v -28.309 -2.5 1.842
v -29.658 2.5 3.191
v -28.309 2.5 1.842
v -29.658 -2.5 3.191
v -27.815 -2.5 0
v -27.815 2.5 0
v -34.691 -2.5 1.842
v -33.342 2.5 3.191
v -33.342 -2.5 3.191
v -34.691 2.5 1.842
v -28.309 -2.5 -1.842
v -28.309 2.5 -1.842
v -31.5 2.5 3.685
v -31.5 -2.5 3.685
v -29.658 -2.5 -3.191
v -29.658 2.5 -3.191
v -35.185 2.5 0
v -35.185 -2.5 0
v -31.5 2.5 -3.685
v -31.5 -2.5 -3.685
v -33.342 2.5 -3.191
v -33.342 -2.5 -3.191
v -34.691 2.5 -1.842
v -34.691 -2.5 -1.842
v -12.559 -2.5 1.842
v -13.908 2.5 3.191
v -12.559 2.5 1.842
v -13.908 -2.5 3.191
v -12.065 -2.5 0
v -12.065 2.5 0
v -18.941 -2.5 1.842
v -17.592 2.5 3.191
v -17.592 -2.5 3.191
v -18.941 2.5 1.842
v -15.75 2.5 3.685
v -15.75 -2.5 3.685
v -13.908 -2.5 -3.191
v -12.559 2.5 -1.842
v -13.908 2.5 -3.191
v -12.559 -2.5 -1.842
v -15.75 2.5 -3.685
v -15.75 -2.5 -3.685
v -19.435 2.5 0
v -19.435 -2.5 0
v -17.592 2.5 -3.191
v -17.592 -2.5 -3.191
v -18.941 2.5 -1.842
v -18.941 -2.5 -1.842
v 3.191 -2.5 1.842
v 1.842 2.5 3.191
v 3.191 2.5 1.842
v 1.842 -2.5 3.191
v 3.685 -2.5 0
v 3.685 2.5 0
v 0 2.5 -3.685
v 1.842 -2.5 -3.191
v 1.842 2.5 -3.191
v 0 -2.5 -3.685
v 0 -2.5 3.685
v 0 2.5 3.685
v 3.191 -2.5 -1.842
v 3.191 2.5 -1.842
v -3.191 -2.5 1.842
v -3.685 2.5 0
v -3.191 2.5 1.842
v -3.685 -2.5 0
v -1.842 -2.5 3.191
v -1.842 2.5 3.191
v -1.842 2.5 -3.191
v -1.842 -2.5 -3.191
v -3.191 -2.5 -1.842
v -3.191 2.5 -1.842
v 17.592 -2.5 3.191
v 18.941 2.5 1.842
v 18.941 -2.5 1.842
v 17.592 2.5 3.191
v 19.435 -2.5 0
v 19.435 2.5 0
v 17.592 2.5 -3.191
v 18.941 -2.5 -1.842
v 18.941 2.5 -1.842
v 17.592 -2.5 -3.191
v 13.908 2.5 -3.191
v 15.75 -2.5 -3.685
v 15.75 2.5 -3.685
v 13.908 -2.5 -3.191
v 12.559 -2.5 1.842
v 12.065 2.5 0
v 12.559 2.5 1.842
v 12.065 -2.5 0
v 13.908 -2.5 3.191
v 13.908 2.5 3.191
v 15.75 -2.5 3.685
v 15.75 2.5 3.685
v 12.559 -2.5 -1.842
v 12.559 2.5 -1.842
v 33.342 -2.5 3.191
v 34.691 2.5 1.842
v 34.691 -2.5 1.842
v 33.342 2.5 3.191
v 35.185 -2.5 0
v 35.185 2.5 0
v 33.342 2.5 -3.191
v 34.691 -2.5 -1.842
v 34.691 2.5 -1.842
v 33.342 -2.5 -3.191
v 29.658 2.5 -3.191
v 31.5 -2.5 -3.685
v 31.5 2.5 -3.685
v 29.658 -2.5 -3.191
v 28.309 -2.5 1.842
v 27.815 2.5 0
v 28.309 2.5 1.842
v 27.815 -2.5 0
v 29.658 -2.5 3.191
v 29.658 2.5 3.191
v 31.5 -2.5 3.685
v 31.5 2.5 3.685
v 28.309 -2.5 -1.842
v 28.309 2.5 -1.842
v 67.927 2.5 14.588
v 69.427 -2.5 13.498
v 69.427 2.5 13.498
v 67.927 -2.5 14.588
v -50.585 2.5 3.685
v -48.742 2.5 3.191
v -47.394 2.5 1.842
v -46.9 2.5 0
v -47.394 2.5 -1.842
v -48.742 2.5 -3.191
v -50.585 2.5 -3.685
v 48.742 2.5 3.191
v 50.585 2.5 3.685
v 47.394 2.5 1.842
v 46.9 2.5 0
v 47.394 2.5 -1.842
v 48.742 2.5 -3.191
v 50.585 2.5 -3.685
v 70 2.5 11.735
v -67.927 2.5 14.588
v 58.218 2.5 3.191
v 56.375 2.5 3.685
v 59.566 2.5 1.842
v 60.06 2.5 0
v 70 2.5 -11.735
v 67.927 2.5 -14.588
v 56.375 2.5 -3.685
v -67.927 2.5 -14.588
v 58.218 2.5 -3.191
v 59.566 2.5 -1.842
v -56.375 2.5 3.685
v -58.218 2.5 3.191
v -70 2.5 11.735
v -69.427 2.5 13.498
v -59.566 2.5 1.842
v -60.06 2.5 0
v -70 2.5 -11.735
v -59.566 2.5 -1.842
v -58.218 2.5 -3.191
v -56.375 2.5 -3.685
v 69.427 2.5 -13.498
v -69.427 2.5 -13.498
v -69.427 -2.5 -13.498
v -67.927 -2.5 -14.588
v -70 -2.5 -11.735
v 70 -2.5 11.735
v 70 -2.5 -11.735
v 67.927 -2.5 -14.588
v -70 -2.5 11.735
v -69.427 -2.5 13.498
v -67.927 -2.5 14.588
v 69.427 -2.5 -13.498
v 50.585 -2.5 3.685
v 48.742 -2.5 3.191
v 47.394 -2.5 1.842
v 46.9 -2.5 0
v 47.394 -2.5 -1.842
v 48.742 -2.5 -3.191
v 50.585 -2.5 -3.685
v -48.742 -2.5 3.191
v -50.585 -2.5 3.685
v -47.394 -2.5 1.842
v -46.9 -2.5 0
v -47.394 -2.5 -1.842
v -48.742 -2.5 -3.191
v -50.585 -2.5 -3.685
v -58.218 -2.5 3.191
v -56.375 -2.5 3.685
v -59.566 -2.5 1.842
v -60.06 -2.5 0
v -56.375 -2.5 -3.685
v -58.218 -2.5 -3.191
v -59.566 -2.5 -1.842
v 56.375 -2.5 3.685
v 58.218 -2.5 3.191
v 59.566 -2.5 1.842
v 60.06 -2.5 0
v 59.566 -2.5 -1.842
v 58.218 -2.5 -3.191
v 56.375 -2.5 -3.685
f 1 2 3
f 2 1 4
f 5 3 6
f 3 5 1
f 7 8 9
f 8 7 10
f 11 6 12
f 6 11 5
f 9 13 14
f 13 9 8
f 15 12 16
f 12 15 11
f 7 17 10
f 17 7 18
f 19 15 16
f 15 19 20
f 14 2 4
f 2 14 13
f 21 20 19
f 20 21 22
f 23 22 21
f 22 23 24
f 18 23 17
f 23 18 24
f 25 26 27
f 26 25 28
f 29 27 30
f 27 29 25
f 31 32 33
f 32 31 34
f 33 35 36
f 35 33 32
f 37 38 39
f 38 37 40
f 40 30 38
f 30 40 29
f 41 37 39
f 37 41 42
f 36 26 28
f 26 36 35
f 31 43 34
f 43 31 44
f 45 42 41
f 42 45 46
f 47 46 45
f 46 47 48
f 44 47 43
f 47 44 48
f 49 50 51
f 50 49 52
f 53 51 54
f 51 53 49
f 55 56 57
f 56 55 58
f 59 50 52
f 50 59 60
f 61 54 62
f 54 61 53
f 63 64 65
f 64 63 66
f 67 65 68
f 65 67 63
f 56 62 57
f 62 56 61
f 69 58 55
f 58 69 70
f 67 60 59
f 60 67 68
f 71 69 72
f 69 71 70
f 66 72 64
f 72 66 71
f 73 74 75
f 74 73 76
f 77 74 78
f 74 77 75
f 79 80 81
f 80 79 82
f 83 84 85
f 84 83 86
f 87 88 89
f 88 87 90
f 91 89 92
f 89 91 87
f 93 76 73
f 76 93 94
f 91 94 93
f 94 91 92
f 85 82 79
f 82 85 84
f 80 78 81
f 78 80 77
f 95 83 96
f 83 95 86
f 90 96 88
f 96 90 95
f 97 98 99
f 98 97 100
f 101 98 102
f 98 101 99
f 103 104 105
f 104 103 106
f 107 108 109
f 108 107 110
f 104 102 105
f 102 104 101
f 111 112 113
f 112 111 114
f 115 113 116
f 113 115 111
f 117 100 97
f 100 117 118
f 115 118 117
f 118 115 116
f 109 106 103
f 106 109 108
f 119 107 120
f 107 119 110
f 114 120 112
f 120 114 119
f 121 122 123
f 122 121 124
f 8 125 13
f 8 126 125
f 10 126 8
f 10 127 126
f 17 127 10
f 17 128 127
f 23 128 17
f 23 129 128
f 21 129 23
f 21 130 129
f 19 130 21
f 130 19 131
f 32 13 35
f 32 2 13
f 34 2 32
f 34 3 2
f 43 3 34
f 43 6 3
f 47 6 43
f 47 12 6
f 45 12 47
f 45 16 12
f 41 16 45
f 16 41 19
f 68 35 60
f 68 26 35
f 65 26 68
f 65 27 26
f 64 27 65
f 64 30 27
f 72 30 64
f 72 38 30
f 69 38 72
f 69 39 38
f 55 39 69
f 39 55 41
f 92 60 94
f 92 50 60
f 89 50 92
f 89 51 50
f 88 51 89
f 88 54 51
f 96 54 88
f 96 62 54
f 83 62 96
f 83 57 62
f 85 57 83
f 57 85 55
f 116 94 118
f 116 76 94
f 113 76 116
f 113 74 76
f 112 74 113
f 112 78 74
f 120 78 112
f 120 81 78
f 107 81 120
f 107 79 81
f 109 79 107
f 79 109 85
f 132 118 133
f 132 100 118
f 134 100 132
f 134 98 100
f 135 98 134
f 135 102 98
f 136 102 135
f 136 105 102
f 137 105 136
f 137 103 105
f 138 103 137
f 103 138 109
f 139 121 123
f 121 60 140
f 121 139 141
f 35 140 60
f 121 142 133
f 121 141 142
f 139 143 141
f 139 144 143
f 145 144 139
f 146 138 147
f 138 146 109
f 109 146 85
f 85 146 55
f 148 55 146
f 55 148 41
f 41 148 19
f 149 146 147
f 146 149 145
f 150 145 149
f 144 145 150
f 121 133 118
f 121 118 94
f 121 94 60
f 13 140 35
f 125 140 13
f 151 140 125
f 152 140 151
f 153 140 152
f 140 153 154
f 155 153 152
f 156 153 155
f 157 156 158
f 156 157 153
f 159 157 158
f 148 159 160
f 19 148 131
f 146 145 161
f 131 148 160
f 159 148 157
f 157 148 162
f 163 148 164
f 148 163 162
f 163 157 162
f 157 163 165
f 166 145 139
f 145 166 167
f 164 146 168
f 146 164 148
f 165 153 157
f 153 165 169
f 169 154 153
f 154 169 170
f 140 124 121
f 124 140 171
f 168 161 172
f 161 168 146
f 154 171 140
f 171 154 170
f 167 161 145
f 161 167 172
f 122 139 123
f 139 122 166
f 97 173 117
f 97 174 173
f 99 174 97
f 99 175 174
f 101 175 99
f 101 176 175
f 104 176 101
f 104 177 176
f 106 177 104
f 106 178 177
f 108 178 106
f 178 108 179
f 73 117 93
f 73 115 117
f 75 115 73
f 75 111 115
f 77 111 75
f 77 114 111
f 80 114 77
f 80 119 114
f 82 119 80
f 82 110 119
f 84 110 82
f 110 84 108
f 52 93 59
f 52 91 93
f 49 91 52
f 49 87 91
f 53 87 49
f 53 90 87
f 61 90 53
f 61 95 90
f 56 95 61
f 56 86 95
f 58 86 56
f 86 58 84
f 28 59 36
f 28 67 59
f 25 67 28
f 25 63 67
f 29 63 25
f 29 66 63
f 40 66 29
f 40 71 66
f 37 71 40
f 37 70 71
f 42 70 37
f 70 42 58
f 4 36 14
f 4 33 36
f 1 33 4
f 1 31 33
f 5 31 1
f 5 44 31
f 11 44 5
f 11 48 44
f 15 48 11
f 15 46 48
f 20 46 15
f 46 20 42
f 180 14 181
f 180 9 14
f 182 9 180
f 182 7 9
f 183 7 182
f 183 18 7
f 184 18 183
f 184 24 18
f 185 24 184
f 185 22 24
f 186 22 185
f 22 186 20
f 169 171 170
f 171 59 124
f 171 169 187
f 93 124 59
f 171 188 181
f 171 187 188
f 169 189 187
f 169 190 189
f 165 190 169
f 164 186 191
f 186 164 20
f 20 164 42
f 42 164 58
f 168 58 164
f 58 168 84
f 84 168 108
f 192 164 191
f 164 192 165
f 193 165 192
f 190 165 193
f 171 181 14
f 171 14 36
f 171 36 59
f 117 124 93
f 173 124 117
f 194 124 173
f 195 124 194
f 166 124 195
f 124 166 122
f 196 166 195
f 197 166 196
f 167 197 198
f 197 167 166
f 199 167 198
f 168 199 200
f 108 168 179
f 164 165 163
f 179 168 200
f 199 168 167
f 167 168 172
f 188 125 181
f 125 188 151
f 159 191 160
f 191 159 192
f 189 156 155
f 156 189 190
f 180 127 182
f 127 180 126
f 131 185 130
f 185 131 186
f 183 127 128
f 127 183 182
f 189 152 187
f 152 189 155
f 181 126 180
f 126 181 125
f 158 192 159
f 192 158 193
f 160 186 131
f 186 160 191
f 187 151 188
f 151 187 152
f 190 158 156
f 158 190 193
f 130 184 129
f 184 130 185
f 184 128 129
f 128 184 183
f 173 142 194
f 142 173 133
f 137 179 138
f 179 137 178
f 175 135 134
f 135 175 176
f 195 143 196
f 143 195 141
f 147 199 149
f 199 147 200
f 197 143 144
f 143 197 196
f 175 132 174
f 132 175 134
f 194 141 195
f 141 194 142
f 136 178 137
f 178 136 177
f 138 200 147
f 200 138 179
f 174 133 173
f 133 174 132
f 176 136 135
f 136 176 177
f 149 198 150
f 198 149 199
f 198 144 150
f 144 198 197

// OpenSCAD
/* doodle-meta {"version":1,"parameters":{"width":{"label":"Overall width","description":"Changes the body width","unit":"mm","feature":"body_width"},"height":{"label":"Overall height","description":"Changes the body height","unit":"mm","feature":"body_height"},"thickness":{"label":"Plate thickness","description":"Changes the plate depth","unit":"mm","feature":"body_thickness"},"corner_radius":{"label":"Corner radius","description":"Changes the outer corner rounding","unit":"mm","feature":"body_corner"}},"features":{"body_width":{"kind":"dimension","axis":"x","label":"Overall width"},"body_height":{"kind":"dimension","axis":"z","label":"Overall height"},"body_thickness":{"kind":"dimension","axis":"y","label":"Plate thickness"},"body_corner":{"kind":"region","label":"Outer corner","min":[0,0,0],"max":[{"parameter":"corner_radius","scale":1,"offset":0},{"parameter":"thickness","scale":1,"offset":0},{"parameter":"corner_radius","scale":1,"offset":0}]}}} */

// --- Parameters ---
width = 140;
height = 29.47;
thickness = 5;
corner_radius = 3;

// Derived dimensions
slot_width = 13.16;
slot_height = 7.37;
slot_radius = 3.68;
slot_x_offset = 16.52;

vent_diameter = 7.37;
vent_count = 5;
vent_pitch = 15.75;

eps = 0.01;

// --- Modules ---

module rounded_rect_2d(w, h, r) {
    // Creates a rounded rectangle centered at (0,0) in XY plane
    // w is X, h is Y
    hull() {
        translate([-w/2 + r, -h/2 + r]) circle(r=r);
        translate([w/2 - r, -h/2 + r]) circle(r=r);
        translate([-w/2 + r, h/2 - r]) circle(r=r);
        translate([w/2 - r, h/2 - r]) circle(r=r);
    }
}

module plate_body() {
    // Extrude the rounded rectangle profile along Y
    // The profile is in XZ, so we create it in XY and rotate
    rotate([90, 0, 0]) {
        linear_extrude(height=thickness, center=true) {
            rounded_rect_2d(width, height, corner_radius);
        }
    }
}

module slot_cutter() {
    // Slot cutter centered at origin, axis along Y
    // Width (X) = slot_width, Height (Z) = slot_height
    // We create a stadium shape in XZ and extrude along Y
    // Stadium: two circles connected by a rectangle
    // Total width = slot_width, Total height = slot_height
    // Radius = slot_height / 2
    // Straight length = slot_width - slot_height
    
    r = slot_height / 2;
    straight_len = slot_width - slot_height;
    
    // Create in XY plane (X is width, Y is height of slot) then rotate to XZ
    // Actually, let's build directly in XZ using hull of cylinders rotated to Y axis?
    // Easier: Build in XY, extrude along Z, then rotate to align with Y.
    
    // Let's build the slot profile in XY (X=slot_width, Y=slot_height)
    // Then extrude along Z (thickness), then rotate to align extrusion with Y.
    
    // Wait, the slot is a through cut along Y.
    // So the profile is in XZ.
    // Let's make a module that creates the slot shape in XZ and extrudes along Y.
    
    // Shape in XZ:
    // Centered at 0,0.
    // X range: -slot_width/2 to slot_width/2
    // Z range: -slot_height/2 to slot_height/2
    // Rounded corners in XZ plane.
    
    // We can use hull of 4 cylinders with axis along Y.
    // Cylinders at (±(slot_width/2 - r), ±(slot_height/2 - r))
    
    r = slot_height / 2;
    x_off = slot_width / 2 - r;
    z_off = slot_height / 2 - r;
    
    hull() {
        translate([-x_off, 0, -z_off]) rotate([90,0,0]) cylinder(h=thickness+2*eps, r=r, center=true);
        translate([ x_off, 0, -z_off]) rotate([90,0,0]) cylinder(h=thickness+2*eps, r=r, center=true);
        translate([-x_off, 0,  z_off]) rotate([90,0,0]) cylinder(h=thickness+2*eps, r=r, center=true);
        translate([ x_off, 0,  z_off]) rotate([90,0,0]) cylinder(h=thickness+2*eps, r=r, center=true);
    }
}

module vent_hole_cutter() {
    // Circular hole, axis along Y
    rotate([90, 0, 0]) {
        cylinder(h=thickness+2*eps, d=vent_diameter, center=true);
    }
}

// --- Main Design ---

difference() {
    // 1. Base Body
    plate_body();
    
    // 2. Left Slot
    // Center X = -width/2 + slot_x_offset
    // Center Z = 0 (vertical center)
    translate([-width/2 + slot_x_offset, 0, 0]) {
        slot_cutter();
    }
    
    // 3. Right Slot
    // Center X = width/2 - slot_x_offset
    translate([width/2 - slot_x_offset, 0, 0]) {
        slot_cutter();
    }
    
    // 4. Vent Holes
    // 5 holes, evenly distributed horizontally
    // Pitch = vent_pitch
    // Total span = (vent_count - 1) * vent_pitch
    // Start X = -total_span / 2
    total_span = (vent_count - 1) * vent_pitch;
    start_x = -total_span / 2;
    
    for (i = [0 : vent_count - 1]) {
        translate([start_x + i * vent_pitch, 0, 0]) {
            vent_hole_cutter();
        }
    }
}
